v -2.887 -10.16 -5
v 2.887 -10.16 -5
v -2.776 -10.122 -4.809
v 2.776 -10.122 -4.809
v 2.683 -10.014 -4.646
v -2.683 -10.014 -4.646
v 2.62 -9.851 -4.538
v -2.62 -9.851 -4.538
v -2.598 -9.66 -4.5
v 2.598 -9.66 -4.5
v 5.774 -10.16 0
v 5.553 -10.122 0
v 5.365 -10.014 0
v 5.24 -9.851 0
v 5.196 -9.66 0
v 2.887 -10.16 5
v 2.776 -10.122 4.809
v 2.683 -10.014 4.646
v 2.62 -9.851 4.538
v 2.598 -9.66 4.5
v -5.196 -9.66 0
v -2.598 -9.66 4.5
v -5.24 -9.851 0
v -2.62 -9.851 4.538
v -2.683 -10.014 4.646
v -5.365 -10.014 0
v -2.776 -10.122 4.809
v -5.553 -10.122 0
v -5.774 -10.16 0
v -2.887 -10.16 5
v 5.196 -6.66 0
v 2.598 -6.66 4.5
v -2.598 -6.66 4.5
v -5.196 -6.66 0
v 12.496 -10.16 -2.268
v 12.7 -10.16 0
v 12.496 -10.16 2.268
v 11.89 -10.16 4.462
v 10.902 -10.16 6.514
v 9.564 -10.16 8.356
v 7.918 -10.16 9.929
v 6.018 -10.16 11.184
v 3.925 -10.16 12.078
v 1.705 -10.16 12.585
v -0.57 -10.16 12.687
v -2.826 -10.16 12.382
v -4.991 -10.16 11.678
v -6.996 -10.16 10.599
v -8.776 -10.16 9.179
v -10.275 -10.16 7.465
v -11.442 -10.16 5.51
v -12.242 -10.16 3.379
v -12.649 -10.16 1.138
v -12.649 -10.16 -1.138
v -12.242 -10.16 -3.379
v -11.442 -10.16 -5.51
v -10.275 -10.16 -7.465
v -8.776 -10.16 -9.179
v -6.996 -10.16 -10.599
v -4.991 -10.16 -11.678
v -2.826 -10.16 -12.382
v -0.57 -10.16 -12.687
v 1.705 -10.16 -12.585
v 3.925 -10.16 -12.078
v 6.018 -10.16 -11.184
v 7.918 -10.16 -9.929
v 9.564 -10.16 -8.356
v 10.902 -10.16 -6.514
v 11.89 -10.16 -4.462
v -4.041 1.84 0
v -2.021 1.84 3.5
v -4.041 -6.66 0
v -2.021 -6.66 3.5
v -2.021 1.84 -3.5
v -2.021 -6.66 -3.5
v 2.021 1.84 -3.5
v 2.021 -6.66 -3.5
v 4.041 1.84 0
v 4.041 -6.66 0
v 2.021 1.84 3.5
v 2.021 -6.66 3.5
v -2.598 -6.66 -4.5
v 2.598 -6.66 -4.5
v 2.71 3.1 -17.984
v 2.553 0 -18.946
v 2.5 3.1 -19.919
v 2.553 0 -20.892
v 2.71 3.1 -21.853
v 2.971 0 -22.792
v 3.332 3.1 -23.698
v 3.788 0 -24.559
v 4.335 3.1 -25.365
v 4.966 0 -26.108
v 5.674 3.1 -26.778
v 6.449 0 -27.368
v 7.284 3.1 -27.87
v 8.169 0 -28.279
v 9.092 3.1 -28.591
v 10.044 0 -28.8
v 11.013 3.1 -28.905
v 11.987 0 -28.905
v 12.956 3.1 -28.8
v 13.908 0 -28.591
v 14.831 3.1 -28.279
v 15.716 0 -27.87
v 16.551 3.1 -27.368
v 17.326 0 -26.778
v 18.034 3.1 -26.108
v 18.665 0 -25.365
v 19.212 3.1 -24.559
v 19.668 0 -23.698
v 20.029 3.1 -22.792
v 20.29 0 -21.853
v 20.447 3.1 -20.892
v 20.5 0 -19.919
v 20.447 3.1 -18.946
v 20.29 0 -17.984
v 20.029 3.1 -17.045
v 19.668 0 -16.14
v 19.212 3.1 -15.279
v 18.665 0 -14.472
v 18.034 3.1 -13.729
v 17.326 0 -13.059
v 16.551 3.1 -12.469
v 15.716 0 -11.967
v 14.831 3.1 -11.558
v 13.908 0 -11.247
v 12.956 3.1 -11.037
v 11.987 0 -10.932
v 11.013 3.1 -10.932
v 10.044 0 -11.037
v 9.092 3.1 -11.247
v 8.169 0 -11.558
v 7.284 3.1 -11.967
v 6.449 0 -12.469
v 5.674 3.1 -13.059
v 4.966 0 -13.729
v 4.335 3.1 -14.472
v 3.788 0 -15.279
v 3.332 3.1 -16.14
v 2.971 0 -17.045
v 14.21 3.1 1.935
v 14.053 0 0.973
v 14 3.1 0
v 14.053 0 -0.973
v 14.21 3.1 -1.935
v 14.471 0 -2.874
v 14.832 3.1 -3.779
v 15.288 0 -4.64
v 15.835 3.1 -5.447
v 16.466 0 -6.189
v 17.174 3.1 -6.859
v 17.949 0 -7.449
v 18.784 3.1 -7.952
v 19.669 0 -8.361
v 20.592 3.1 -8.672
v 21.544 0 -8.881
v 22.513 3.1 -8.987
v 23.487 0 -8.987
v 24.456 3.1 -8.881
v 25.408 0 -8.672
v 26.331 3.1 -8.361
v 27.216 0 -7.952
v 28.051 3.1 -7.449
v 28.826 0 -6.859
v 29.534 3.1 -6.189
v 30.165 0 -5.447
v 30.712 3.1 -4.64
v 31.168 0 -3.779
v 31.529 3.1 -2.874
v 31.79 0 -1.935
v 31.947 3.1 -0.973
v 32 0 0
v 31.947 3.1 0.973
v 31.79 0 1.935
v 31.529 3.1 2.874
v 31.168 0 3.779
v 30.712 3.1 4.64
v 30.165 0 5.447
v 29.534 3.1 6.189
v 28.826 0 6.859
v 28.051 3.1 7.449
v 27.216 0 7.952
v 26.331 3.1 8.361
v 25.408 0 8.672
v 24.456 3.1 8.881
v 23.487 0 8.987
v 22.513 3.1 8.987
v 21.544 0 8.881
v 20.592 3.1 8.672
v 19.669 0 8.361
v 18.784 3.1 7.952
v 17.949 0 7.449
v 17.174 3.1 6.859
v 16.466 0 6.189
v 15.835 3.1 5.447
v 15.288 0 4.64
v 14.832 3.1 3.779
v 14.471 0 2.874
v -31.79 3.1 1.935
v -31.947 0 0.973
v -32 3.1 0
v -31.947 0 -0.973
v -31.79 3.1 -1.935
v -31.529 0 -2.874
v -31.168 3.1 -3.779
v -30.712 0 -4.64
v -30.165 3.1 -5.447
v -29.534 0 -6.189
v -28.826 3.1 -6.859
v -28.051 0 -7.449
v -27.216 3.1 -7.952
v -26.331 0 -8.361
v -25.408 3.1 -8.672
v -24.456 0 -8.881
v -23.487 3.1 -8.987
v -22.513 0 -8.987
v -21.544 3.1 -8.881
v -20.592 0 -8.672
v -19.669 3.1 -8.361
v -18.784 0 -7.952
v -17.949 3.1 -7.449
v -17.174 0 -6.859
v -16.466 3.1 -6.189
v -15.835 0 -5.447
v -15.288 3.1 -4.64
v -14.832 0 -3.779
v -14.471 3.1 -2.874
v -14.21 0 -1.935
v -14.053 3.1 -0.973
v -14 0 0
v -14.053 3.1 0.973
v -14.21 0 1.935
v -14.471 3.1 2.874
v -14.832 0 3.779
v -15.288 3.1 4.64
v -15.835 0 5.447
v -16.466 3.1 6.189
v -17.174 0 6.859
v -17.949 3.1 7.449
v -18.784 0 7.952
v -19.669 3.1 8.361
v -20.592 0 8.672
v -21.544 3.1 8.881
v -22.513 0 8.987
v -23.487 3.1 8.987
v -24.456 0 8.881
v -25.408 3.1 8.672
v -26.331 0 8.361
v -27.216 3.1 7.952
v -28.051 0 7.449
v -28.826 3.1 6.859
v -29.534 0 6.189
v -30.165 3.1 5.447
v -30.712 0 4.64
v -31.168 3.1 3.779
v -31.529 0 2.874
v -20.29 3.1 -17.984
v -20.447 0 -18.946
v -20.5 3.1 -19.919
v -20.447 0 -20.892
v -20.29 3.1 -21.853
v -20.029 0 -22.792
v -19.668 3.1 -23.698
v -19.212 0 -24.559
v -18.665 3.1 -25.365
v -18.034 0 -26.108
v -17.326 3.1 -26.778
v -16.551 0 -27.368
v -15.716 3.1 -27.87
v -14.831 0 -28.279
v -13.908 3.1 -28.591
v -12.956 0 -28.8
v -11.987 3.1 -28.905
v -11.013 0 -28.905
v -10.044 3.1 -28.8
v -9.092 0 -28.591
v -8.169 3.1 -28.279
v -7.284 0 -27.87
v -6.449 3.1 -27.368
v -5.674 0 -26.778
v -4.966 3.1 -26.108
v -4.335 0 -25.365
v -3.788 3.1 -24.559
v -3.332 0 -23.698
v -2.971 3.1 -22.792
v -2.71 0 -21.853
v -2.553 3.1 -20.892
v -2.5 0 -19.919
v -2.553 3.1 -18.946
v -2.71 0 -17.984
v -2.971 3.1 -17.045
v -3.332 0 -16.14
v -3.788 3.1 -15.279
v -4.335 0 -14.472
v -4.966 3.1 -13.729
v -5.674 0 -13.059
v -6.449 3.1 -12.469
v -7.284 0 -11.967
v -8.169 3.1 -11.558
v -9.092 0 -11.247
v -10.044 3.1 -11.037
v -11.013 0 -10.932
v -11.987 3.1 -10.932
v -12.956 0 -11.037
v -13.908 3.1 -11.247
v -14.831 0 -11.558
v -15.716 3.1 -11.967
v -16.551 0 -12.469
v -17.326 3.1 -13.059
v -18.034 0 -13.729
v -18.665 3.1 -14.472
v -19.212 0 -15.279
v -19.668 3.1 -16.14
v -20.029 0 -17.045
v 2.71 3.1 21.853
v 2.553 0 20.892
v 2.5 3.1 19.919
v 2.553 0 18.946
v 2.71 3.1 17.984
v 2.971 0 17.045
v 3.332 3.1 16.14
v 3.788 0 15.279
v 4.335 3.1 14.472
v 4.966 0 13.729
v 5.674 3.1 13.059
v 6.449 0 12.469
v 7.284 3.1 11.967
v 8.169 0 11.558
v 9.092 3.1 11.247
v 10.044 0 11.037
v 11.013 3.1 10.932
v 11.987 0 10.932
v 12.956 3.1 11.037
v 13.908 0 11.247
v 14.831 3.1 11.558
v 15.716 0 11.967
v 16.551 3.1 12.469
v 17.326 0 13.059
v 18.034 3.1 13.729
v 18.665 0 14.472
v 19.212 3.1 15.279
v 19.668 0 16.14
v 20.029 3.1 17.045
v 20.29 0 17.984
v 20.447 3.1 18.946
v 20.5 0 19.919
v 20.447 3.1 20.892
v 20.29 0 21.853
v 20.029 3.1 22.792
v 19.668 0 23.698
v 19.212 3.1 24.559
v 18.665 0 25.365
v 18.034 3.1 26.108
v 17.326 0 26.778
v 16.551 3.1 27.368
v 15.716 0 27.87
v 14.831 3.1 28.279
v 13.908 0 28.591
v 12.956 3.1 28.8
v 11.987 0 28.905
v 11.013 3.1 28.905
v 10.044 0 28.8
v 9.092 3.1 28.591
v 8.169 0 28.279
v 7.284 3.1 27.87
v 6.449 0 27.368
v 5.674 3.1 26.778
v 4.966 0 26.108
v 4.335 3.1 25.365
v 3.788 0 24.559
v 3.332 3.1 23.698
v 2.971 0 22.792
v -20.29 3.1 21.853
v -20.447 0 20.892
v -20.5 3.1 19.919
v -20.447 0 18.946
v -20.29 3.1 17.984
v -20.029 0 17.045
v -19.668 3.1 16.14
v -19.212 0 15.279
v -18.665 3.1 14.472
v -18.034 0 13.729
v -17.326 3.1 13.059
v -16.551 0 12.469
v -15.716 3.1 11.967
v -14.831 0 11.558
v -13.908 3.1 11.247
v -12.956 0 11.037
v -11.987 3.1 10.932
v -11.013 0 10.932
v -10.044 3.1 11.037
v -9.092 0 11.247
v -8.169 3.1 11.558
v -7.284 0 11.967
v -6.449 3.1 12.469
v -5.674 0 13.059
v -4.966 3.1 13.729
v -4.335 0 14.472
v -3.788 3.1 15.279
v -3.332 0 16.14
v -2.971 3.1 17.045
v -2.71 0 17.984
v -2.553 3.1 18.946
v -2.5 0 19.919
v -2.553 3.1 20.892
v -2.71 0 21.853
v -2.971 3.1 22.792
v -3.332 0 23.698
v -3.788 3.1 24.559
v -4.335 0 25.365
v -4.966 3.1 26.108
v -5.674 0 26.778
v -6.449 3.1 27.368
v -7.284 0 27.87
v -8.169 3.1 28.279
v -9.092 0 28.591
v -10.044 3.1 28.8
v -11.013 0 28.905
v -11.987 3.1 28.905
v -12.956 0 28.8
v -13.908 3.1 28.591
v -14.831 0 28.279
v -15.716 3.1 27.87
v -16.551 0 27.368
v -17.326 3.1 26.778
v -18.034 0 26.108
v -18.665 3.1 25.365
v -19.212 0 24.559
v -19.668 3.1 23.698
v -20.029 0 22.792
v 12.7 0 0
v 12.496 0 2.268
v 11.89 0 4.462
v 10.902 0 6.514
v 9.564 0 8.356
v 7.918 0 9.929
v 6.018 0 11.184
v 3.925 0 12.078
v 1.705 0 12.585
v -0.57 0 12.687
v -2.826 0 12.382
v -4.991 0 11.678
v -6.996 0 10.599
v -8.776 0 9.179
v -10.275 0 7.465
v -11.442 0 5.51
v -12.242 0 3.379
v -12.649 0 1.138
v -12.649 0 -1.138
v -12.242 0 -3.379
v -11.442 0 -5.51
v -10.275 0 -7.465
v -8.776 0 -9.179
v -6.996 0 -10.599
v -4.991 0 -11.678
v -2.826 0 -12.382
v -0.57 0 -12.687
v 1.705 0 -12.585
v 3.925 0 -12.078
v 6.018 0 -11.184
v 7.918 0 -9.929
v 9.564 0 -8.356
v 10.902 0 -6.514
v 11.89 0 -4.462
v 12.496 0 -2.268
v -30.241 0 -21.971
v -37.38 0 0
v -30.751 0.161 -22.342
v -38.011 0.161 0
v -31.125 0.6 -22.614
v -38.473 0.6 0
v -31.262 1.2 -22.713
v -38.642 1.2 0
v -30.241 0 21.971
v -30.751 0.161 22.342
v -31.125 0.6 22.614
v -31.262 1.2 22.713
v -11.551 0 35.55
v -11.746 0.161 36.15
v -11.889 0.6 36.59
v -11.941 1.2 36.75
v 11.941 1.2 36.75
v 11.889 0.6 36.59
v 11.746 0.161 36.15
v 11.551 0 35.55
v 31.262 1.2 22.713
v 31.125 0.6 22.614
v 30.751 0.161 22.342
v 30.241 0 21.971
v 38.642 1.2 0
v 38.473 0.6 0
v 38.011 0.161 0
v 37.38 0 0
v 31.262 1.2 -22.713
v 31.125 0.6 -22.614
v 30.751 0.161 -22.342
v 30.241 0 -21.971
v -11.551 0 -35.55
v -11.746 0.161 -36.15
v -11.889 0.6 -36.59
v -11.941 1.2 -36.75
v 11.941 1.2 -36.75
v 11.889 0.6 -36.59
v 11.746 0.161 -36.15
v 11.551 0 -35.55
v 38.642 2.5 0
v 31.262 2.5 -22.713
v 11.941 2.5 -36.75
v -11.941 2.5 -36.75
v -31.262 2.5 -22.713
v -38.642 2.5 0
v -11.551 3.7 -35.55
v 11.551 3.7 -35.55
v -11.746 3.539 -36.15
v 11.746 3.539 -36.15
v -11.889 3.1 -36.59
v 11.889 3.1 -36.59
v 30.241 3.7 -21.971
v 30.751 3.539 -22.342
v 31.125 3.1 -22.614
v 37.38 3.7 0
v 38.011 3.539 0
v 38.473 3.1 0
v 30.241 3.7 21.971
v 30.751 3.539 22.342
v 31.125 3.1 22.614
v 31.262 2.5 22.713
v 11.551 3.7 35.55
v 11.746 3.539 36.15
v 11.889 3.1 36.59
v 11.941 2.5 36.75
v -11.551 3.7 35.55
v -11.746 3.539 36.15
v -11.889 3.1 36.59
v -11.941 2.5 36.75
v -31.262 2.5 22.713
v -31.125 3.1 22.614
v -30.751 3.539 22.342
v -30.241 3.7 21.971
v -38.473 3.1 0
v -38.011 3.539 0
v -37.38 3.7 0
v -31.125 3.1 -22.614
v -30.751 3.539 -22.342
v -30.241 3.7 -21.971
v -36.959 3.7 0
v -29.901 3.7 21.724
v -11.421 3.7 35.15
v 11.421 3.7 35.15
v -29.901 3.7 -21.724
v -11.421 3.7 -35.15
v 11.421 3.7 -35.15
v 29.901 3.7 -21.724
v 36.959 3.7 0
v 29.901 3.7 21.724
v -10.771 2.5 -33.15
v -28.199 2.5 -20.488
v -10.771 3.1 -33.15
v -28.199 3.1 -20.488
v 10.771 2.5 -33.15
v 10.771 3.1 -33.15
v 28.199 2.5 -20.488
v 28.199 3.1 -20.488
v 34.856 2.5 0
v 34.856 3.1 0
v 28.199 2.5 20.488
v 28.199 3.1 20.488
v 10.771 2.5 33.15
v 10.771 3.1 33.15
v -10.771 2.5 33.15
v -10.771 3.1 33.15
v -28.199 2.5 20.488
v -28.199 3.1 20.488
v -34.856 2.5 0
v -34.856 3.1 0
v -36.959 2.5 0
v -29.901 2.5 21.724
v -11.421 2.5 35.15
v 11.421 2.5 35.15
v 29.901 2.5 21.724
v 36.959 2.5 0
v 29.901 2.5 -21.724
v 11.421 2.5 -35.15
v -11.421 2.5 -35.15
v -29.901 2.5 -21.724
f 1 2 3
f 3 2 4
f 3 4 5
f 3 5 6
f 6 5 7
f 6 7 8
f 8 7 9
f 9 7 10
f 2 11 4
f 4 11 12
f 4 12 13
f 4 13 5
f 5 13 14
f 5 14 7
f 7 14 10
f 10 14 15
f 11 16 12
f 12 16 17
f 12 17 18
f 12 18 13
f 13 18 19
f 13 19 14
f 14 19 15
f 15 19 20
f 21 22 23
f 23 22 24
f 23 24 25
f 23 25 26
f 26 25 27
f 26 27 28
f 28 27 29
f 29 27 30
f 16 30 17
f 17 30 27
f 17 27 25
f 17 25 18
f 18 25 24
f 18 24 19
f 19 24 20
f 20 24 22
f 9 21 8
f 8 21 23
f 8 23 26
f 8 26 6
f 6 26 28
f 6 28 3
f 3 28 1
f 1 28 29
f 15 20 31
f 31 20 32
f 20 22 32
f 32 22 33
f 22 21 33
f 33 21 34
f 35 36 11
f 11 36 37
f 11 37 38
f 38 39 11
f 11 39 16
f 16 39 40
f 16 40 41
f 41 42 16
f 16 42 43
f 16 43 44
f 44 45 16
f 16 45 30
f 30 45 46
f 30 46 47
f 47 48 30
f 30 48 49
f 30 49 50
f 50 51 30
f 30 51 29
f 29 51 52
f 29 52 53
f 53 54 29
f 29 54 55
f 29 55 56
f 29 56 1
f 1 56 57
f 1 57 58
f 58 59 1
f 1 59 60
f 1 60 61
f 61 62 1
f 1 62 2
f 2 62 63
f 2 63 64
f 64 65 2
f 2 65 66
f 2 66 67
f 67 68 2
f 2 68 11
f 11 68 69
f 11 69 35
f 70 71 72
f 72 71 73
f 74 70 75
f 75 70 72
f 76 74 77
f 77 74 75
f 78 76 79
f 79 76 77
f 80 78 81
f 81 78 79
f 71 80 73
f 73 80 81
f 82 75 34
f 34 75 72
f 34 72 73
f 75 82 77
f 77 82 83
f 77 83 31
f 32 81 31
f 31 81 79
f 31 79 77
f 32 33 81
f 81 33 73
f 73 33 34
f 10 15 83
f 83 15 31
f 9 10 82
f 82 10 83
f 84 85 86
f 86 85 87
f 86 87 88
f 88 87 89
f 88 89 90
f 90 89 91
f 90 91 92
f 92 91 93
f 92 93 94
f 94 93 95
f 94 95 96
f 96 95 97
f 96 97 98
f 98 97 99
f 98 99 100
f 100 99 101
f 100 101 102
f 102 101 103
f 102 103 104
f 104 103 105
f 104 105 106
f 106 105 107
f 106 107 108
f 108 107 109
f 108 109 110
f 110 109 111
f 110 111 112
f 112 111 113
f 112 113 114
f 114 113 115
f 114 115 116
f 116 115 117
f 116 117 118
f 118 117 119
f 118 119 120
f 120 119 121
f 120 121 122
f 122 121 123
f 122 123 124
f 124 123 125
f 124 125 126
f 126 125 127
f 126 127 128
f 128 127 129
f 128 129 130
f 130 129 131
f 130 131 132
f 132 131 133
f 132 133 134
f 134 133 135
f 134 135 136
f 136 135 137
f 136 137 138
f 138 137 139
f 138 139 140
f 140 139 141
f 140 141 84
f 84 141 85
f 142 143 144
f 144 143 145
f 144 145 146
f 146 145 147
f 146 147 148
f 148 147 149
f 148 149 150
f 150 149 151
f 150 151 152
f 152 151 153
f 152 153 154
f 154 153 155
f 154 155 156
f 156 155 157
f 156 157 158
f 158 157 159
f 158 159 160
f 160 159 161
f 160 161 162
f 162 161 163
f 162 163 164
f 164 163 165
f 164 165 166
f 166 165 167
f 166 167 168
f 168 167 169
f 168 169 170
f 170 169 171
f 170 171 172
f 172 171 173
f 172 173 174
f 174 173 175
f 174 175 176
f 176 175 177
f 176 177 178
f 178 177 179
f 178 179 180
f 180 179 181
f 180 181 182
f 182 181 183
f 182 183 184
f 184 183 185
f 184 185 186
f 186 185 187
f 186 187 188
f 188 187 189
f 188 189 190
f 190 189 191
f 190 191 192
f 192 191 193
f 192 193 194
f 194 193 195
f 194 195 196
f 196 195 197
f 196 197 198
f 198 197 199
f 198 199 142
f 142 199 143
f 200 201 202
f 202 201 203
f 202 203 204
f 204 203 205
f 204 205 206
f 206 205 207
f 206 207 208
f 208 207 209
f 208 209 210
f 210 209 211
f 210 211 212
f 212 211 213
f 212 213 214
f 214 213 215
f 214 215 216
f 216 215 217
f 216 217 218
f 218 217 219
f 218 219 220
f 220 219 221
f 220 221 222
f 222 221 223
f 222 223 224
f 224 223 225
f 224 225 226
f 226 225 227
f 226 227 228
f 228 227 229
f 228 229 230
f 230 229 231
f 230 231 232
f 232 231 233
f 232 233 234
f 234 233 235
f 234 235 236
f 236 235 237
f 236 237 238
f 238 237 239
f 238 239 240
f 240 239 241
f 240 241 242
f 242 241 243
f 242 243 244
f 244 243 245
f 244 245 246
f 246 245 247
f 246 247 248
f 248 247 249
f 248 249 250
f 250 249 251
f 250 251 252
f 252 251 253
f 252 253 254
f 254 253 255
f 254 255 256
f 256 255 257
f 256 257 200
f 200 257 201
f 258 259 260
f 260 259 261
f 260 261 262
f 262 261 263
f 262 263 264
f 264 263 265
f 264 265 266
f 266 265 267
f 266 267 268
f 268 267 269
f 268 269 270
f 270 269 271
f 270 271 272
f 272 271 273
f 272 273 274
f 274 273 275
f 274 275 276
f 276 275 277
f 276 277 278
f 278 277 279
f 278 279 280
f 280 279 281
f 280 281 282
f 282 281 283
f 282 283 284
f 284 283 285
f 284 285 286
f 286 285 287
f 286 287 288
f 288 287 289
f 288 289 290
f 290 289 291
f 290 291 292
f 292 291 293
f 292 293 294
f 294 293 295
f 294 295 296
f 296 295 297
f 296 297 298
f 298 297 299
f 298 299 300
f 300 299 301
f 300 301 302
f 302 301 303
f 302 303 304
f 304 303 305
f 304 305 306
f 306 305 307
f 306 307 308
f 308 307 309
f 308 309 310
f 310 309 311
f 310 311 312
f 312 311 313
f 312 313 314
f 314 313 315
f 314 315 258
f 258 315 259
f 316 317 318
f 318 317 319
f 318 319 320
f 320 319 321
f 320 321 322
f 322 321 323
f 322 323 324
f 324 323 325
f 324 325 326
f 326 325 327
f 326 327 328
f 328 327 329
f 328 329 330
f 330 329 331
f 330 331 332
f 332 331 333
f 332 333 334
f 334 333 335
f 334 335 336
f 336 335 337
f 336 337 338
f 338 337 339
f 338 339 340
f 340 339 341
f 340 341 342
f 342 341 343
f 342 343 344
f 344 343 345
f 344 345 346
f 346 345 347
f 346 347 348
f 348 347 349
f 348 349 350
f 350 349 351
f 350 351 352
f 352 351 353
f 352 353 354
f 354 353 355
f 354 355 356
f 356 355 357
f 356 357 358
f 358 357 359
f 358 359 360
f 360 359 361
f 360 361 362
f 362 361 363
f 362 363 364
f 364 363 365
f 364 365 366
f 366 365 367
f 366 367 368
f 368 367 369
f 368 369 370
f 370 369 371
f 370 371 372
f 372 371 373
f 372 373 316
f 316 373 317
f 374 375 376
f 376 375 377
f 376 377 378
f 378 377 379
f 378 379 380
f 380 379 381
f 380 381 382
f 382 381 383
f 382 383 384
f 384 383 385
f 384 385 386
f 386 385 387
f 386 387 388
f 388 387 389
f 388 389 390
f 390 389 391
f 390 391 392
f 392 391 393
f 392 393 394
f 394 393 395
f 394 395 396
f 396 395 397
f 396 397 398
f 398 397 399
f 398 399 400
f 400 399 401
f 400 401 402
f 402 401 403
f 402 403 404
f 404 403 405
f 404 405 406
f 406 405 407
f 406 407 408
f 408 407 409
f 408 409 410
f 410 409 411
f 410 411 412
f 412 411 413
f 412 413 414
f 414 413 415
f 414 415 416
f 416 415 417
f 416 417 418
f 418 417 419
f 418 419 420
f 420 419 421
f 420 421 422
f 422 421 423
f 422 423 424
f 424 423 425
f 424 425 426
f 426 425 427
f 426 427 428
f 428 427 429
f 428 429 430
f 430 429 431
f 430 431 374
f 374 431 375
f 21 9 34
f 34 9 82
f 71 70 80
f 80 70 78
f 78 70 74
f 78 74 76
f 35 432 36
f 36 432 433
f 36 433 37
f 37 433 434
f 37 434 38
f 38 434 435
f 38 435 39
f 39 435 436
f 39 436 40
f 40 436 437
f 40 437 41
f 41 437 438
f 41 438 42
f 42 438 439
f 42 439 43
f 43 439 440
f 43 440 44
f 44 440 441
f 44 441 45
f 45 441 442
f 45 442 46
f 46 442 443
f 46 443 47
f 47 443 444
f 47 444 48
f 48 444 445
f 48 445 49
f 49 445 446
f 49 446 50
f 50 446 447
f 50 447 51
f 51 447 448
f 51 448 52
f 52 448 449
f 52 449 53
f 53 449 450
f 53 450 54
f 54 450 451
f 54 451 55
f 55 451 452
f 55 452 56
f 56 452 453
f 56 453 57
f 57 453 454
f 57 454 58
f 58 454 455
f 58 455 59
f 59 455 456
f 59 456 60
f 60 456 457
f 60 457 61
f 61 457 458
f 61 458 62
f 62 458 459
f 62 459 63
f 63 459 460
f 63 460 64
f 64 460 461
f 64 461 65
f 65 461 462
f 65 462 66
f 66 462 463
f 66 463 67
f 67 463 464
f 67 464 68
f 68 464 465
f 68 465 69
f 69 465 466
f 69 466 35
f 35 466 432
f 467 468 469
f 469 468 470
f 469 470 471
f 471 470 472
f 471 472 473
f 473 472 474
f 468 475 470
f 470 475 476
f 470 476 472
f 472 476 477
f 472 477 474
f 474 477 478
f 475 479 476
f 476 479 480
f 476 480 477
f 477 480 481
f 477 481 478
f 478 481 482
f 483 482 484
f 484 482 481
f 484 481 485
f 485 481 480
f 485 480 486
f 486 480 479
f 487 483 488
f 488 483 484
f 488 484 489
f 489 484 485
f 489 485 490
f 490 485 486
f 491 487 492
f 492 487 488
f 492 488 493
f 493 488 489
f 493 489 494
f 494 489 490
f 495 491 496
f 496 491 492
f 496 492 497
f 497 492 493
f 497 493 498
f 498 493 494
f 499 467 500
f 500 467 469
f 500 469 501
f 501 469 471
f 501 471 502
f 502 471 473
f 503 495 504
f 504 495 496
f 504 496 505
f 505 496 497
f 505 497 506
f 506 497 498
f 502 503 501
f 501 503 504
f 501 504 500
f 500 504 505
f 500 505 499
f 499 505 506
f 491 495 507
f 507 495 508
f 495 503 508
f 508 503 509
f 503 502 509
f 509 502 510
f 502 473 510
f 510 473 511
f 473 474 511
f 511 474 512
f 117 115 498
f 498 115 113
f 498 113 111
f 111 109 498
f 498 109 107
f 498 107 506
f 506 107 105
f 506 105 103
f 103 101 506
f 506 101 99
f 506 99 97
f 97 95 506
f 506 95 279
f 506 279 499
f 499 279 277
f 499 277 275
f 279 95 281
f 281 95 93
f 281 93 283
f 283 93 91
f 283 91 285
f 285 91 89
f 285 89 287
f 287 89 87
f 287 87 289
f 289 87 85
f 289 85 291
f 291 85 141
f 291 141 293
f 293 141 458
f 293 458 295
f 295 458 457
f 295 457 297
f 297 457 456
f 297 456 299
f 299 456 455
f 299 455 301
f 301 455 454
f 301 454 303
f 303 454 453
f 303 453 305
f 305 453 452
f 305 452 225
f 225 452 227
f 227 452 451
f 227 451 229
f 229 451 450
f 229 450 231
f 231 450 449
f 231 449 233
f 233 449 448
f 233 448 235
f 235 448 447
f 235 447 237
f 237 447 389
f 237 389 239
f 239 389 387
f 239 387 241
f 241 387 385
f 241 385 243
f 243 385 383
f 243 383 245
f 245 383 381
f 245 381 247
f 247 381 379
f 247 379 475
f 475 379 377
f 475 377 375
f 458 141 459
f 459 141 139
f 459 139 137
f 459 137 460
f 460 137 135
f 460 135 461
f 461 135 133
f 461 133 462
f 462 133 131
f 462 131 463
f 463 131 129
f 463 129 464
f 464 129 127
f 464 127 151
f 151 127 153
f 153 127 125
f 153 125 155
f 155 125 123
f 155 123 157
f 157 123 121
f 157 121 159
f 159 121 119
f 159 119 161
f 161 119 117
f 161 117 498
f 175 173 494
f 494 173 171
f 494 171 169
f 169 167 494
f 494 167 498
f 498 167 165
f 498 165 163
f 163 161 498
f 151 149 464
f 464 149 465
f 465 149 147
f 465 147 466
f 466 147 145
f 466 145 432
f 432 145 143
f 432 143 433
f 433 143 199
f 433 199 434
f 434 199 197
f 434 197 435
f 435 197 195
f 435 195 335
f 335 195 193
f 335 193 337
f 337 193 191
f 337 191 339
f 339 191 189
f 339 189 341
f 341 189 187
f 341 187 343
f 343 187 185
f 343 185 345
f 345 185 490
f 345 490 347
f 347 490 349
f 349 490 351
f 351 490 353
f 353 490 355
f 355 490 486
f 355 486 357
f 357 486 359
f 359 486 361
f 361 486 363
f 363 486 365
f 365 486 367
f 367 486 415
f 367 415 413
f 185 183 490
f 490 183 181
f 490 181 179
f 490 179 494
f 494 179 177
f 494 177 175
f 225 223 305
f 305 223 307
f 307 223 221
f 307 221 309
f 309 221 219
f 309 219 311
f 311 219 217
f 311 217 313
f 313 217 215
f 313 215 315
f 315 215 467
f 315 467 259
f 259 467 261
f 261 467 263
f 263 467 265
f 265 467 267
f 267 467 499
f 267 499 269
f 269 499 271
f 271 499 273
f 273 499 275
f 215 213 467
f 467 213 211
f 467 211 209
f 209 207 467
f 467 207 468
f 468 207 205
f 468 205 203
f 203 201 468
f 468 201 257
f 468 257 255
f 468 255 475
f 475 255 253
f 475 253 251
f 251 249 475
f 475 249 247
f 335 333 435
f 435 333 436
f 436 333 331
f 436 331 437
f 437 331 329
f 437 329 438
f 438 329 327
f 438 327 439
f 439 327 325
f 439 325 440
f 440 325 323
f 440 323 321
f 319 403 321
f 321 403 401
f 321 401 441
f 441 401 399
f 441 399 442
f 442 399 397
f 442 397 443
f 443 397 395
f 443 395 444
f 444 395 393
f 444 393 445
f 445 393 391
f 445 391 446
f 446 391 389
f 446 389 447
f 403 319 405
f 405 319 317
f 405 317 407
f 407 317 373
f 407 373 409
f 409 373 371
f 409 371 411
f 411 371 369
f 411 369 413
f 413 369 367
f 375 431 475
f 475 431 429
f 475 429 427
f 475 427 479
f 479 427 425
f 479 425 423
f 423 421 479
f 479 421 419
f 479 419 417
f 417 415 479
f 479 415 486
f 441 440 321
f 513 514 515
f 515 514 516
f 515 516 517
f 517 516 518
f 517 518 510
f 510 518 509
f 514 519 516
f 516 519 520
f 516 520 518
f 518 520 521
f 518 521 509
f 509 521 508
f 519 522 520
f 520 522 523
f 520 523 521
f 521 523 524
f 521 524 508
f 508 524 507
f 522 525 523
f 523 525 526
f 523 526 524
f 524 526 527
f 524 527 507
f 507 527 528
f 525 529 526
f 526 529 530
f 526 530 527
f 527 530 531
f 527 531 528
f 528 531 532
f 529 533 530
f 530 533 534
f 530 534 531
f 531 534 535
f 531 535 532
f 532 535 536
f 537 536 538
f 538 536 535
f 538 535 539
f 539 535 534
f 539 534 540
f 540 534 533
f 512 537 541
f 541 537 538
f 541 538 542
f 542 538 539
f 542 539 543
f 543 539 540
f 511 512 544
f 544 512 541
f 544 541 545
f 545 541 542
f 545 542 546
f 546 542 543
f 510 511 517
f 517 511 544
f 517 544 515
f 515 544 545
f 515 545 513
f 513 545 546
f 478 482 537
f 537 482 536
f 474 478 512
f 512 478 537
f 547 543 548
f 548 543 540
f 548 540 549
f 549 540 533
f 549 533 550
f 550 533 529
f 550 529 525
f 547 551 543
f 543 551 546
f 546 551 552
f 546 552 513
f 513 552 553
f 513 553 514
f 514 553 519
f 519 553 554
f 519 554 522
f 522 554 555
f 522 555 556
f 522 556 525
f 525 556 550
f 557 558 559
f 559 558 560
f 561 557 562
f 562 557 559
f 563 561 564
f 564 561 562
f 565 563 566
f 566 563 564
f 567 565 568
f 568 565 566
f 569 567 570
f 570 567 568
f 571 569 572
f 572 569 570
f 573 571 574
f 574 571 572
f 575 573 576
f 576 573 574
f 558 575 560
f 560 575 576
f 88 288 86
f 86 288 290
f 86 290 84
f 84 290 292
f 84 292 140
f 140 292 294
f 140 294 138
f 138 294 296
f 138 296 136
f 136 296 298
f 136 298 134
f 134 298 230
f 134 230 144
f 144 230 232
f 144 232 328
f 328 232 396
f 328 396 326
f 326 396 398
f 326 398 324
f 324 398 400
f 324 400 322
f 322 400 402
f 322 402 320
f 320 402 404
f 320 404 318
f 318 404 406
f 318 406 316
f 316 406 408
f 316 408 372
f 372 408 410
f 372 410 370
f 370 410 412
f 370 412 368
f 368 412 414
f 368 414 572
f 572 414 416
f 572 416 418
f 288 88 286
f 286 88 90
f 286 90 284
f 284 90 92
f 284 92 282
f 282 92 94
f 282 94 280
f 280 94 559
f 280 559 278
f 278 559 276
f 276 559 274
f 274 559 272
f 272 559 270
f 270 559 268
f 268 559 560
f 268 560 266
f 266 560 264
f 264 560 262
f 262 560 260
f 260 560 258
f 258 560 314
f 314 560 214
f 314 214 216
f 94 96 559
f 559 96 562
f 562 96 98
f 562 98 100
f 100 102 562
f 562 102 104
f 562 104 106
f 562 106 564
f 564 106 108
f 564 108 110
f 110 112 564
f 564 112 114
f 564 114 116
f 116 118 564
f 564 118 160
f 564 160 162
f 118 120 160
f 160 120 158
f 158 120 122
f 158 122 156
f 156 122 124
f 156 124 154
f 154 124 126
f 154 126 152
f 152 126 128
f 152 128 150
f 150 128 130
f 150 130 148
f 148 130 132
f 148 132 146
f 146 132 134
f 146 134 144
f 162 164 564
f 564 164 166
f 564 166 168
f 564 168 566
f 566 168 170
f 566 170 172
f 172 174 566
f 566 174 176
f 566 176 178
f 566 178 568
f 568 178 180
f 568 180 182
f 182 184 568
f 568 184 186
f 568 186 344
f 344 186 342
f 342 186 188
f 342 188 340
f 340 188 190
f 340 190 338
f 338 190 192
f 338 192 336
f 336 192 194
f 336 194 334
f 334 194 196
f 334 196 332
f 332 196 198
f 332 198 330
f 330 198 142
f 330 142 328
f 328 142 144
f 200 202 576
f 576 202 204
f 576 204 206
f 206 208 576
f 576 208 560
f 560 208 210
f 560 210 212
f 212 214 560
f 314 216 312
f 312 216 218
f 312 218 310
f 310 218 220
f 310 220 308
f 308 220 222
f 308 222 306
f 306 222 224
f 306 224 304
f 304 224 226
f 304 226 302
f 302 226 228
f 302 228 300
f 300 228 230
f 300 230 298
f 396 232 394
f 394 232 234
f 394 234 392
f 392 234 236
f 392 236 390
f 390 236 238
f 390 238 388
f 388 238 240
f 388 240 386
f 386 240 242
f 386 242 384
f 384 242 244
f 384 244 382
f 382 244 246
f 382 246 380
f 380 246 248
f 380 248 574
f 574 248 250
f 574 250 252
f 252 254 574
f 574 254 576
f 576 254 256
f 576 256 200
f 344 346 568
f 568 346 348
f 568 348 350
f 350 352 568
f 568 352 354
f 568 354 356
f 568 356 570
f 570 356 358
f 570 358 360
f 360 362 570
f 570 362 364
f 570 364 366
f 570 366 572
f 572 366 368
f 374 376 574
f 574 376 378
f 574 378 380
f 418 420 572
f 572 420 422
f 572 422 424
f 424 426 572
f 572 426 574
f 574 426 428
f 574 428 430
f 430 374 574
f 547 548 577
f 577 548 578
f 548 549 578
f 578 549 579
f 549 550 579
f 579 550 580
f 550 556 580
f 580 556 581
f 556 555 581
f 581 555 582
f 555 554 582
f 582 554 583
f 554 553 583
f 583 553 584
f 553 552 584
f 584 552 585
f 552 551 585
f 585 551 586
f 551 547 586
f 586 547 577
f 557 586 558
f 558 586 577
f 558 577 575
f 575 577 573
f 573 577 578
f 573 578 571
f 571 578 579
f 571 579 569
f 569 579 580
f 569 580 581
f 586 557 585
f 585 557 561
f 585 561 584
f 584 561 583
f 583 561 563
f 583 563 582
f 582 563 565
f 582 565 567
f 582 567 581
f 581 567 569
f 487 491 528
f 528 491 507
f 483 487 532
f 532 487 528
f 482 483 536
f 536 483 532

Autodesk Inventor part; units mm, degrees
ref_plane "YZ Plane" through (0, 0, 0) normal (1, 0, 0) x (0, 1, 0)
ref_plane "XZ Plane" through (0, 0, 0) normal (0, 1, 0) x (-1, 0, 0)
ref_plane "XY Plane" through (0, 0, 0) normal (0, 0, 1) x (1, 0, 0)
sketch "스케치1" plane through (0, 0, 0) normal (0, 1, 0) x (-1, 0, 0)
  line L0 (-10.9012, 33.5504) -> (10.9012, 33.5504)
  line L1 (10.9012, 33.5504) -> (28.5397, 20.7353)
  line L2 (28.5397, 20.7353) -> (35.277, 0)
  line L3 (35.277, 0) -> (28.5397, -20.7353)
  line L4 (28.5397, -20.7353) -> (10.9012, -33.5504)
  line L5 (10.9012, -33.5504) -> (-10.9012, -33.5504)
  line L6 (-10.9012, -33.5504) -> (-28.5397, -20.7353)
  line L7 (-28.5397, -20.7353) -> (-35.277, 0)
  line L8 (-35.277, 0) -> (-28.5397, 20.7353)
  line L9 (-28.5397, 20.7353) -> (-10.9012, 33.5504)
  line L10 (11.9409, -36.7504) -> (-11.9409, -36.7504)
  line L11 (-11.9409, -36.7504) -> (-31.2618, -22.713)
  line L12 (-31.2618, -22.713) -> (-38.6417, 0)
  line L13 (-38.6417, 0) -> (-31.2618, 22.713)
  line L14 (-31.2618, 22.713) -> (-11.9409, 36.7504)
  line L15 (-11.9409, 36.7504) -> (11.9409, 36.7504)
  line L16 (11.9409, 36.7504) -> (31.2618, 22.713)
  line L17 (31.2618, 22.713) -> (38.6417, 0)
  line L18 (38.6417, 0) -> (31.2618, -22.713)
  line L19 (31.2618, -22.713) -> (11.9409, -36.7504)
  point P0 (0, 0)
  point P1 (0, 0)
  point P2 (0, 0)
  dimension "d0" = 70.554
  dimension "d1" = 3.2
extrude "돌출1" add sketch "스케치1" along normal blind 3.7 contours L0 L1 L2 L3 L4 L5 L6 L7 L8 L9 | L10 L11 L12 L13 L14 L15 L16 L17 L18 L19
sketch "스케치2" plane through (0, 3.7, 0) normal (0, 1, 0) x (1, 0, 0)
  line L0 (-11.4211, 35.1504) -> (11.4211, 35.1504)
  line L1 (11.4211, 35.1504) -> (29.9007, 21.7242)
  line L2 (29.9007, 21.7242) -> (36.9593, 0)
  line L3 (36.9593, 0) -> (29.9007, -21.7242)
  line L4 (29.9007, -21.7242) -> (11.4211, -35.1504)
  line L5 (11.4211, -35.1504) -> (-11.4211, -35.1504)
  line L6 (-11.4211, -35.1504) -> (-29.9007, -21.7242)
  line L7 (-29.9007, -21.7242) -> (-36.9593, 0)
  line L8 (-36.9593, 0) -> (-29.9007, 21.7242)
  line L9 (-29.9007, 21.7242) -> (-11.4211, 35.1504)
  line L10 (-31.2618, 22.713) -> (-38.6417, 0) projected
  point P0 (0, 0)
  point P1 (0, 0)
  dimension "d4" = 1.6
extrude "돌출2" cut sketch "스케치2" against normal blind 1.2
sketch "스케치3" plane through (0, 2.5, 0) normal (0, 1, 0) x (1, 0, 0)
  line L0 (-10.7712, 33.1504) -> (10.7712, 33.1504)
  line L1 (10.7712, 33.1504) -> (28.1994, 20.4881)
  line L2 (28.1994, 20.4881) -> (34.8564, 0)
  line L3 (34.8564, 0) -> (28.1994, -20.4881)
  line L4 (28.1994, -20.4881) -> (10.7712, -33.1504)
  line L5 (10.7712, -33.1504) -> (-10.7712, -33.1504)
  line L6 (-10.7712, -33.1504) -> (-28.1994, -20.4881)
  line L7 (-28.1994, -20.4881) -> (-34.8564, 0)
  line L8 (-34.8564, 0) -> (-28.1994, 20.4881)
  line L9 (-28.1994, 20.4881) -> (-10.7712, 33.1504)
  line L10 (-29.9007, 21.7242) -> (-11.4211, 35.1504) projected
  point P0 (0, 0)
  point P1 (0, 0)
  dimension "d7" = 2
extrude "돌출3" add sketch "스케치3" along normal blind 0.6
fillet "모깎기1" radius 1.2 20 edges at (0, 3.7, 36.7504) (0, 0, 36.7504) (-21.6014, 3.7, 29.7317) (-21.6014, 0, 29.7317) (-34.9517, 3.7, 11.3565) (-34.9517, 3.7, -11.3565) (-21.6014, 3.7, -29.7317) (0, 3.7, -36.7504) (21.6014, 3.7, -29.7317) (34.9517, 3.7, -11.3565) (34.9517, 3.7, 11.3565) (21.6014, 3.7, 29.7317) (21.6014, 0, -29.7317) (0, 0, -36.7504) (-21.6014, 0, -29.7317) (-34.9517, 0, -11.3565) (-34.9517, 0, 11.3565) (34.9517, 0, -11.3565) (34.9517, 0, 11.3565) (21.6014, 0, 29.7317)
sketch "스케치12" plane through (0, 0, 0) normal (0, -1, 0) x (1, 0, 0)
  circle A0 centre (0, 0) radius 12.7
  dimension "d53" = 25.4
extrude "돌출12" add sketch "스케치12" along normal blind 10.16
sketch "스케치13" plane through (0, -10.16, 0) normal (0, -1, 0) x (1, 0, 0)
  circle A0 centre (0, 0) radius 4.5
  line L0 (-2.5981, 4.5) -> (2.5981, 4.5)
  line L1 (2.5981, 4.5) -> (5.1962, 0)
  line L2 (5.1962, 0) -> (2.5981, -4.5)
  line L3 (2.5981, -4.5) -> (-2.5981, -4.5)
  line L4 (-2.5981, -4.5) -> (-5.1962, 0)
  line L5 (-5.1962, 0) -> (-2.5981, 4.5)
  point P0 (-3.8971, 2.25)
  point P1 (-3.8971, -2.25)
  point P2 (0, 4.5)
  point P3 (0, -4.5)
  point P4 (3.8971, -2.25)
  point P5 (3.8971, 2.25)
  dimension "d56" = 9
extrude "돌출13" cut sketch "스케치13" against normal blind 12
sketch "스케치14" plane through (0, 0, 0) normal (0, -1, 0) x (1, 0, 0)
  circle A0 centre (-23, 0) radius 9
  circle A1 centre (-11.5, -19.9186) radius 9
  circle A2 centre (11.5, -19.9186) radius 9
  circle A3 centre (23, 0) radius 9
  circle A4 centre (11.5, 19.9186) radius 9
  circle A5 centre (-11.5, 19.9186) radius 9
  point P0 (0, 0)
  dimension "d61" = 18
  dimension "d62" = 23
  dimension "d65" = 360
extrude "돌출14" cut sketch "스케치14" against normal up to surface (3.1 mm away)
sketch "스케치17" plane through (0, 1.84, 0) normal (0, -1, 0) x (1, 0, 0)
  line L0 (-2.5981, 4.5) -> (2.5981, 4.5) projected
  line L1 (-5.1962, 0) -> (-2.5981, 4.5) projected
  line L2 (-2.5981, -4.5) -> (-5.1962, 0) projected
  line L3 (2.5981, -4.5) -> (-2.5981, -4.5) projected
  line L4 (5.1962, 0) -> (2.5981, -4.5) projected
  line L5 (2.5981, 4.5) -> (5.1962, 0) projected
  line L6 (-2.0207, 3.5) -> (2.0207, 3.5)
  line L7 (2.0207, 3.5) -> (4.0415, 0)
  line L8 (4.0415, 0) -> (2.0207, -3.5)
  line L9 (2.0207, -3.5) -> (-2.0207, -3.5)
  line L10 (-2.0207, -3.5) -> (-4.0415, 0)
  line L11 (-4.0415, 0) -> (-2.0207, 3.5)
  point P0 (0, 0)
  point P1 (0, 0)
  dimension "d87" = 1
extrude "돌출15" add sketch "스케치17" along normal blind 8.5
fillet "모깎기2" radius 0.5 6 edges at (0, -10.16, 4.5) (-3.8971, -10.16, 2.25) (-3.8971, -10.16, -2.25) (3.8971, -10.16, 2.25) (3.8971, -10.16, -2.25) (0, -10.16, -4.5)
equation "\"d76\" = 55deg"
properties part number "OV-PAM_n_10_bottom"
